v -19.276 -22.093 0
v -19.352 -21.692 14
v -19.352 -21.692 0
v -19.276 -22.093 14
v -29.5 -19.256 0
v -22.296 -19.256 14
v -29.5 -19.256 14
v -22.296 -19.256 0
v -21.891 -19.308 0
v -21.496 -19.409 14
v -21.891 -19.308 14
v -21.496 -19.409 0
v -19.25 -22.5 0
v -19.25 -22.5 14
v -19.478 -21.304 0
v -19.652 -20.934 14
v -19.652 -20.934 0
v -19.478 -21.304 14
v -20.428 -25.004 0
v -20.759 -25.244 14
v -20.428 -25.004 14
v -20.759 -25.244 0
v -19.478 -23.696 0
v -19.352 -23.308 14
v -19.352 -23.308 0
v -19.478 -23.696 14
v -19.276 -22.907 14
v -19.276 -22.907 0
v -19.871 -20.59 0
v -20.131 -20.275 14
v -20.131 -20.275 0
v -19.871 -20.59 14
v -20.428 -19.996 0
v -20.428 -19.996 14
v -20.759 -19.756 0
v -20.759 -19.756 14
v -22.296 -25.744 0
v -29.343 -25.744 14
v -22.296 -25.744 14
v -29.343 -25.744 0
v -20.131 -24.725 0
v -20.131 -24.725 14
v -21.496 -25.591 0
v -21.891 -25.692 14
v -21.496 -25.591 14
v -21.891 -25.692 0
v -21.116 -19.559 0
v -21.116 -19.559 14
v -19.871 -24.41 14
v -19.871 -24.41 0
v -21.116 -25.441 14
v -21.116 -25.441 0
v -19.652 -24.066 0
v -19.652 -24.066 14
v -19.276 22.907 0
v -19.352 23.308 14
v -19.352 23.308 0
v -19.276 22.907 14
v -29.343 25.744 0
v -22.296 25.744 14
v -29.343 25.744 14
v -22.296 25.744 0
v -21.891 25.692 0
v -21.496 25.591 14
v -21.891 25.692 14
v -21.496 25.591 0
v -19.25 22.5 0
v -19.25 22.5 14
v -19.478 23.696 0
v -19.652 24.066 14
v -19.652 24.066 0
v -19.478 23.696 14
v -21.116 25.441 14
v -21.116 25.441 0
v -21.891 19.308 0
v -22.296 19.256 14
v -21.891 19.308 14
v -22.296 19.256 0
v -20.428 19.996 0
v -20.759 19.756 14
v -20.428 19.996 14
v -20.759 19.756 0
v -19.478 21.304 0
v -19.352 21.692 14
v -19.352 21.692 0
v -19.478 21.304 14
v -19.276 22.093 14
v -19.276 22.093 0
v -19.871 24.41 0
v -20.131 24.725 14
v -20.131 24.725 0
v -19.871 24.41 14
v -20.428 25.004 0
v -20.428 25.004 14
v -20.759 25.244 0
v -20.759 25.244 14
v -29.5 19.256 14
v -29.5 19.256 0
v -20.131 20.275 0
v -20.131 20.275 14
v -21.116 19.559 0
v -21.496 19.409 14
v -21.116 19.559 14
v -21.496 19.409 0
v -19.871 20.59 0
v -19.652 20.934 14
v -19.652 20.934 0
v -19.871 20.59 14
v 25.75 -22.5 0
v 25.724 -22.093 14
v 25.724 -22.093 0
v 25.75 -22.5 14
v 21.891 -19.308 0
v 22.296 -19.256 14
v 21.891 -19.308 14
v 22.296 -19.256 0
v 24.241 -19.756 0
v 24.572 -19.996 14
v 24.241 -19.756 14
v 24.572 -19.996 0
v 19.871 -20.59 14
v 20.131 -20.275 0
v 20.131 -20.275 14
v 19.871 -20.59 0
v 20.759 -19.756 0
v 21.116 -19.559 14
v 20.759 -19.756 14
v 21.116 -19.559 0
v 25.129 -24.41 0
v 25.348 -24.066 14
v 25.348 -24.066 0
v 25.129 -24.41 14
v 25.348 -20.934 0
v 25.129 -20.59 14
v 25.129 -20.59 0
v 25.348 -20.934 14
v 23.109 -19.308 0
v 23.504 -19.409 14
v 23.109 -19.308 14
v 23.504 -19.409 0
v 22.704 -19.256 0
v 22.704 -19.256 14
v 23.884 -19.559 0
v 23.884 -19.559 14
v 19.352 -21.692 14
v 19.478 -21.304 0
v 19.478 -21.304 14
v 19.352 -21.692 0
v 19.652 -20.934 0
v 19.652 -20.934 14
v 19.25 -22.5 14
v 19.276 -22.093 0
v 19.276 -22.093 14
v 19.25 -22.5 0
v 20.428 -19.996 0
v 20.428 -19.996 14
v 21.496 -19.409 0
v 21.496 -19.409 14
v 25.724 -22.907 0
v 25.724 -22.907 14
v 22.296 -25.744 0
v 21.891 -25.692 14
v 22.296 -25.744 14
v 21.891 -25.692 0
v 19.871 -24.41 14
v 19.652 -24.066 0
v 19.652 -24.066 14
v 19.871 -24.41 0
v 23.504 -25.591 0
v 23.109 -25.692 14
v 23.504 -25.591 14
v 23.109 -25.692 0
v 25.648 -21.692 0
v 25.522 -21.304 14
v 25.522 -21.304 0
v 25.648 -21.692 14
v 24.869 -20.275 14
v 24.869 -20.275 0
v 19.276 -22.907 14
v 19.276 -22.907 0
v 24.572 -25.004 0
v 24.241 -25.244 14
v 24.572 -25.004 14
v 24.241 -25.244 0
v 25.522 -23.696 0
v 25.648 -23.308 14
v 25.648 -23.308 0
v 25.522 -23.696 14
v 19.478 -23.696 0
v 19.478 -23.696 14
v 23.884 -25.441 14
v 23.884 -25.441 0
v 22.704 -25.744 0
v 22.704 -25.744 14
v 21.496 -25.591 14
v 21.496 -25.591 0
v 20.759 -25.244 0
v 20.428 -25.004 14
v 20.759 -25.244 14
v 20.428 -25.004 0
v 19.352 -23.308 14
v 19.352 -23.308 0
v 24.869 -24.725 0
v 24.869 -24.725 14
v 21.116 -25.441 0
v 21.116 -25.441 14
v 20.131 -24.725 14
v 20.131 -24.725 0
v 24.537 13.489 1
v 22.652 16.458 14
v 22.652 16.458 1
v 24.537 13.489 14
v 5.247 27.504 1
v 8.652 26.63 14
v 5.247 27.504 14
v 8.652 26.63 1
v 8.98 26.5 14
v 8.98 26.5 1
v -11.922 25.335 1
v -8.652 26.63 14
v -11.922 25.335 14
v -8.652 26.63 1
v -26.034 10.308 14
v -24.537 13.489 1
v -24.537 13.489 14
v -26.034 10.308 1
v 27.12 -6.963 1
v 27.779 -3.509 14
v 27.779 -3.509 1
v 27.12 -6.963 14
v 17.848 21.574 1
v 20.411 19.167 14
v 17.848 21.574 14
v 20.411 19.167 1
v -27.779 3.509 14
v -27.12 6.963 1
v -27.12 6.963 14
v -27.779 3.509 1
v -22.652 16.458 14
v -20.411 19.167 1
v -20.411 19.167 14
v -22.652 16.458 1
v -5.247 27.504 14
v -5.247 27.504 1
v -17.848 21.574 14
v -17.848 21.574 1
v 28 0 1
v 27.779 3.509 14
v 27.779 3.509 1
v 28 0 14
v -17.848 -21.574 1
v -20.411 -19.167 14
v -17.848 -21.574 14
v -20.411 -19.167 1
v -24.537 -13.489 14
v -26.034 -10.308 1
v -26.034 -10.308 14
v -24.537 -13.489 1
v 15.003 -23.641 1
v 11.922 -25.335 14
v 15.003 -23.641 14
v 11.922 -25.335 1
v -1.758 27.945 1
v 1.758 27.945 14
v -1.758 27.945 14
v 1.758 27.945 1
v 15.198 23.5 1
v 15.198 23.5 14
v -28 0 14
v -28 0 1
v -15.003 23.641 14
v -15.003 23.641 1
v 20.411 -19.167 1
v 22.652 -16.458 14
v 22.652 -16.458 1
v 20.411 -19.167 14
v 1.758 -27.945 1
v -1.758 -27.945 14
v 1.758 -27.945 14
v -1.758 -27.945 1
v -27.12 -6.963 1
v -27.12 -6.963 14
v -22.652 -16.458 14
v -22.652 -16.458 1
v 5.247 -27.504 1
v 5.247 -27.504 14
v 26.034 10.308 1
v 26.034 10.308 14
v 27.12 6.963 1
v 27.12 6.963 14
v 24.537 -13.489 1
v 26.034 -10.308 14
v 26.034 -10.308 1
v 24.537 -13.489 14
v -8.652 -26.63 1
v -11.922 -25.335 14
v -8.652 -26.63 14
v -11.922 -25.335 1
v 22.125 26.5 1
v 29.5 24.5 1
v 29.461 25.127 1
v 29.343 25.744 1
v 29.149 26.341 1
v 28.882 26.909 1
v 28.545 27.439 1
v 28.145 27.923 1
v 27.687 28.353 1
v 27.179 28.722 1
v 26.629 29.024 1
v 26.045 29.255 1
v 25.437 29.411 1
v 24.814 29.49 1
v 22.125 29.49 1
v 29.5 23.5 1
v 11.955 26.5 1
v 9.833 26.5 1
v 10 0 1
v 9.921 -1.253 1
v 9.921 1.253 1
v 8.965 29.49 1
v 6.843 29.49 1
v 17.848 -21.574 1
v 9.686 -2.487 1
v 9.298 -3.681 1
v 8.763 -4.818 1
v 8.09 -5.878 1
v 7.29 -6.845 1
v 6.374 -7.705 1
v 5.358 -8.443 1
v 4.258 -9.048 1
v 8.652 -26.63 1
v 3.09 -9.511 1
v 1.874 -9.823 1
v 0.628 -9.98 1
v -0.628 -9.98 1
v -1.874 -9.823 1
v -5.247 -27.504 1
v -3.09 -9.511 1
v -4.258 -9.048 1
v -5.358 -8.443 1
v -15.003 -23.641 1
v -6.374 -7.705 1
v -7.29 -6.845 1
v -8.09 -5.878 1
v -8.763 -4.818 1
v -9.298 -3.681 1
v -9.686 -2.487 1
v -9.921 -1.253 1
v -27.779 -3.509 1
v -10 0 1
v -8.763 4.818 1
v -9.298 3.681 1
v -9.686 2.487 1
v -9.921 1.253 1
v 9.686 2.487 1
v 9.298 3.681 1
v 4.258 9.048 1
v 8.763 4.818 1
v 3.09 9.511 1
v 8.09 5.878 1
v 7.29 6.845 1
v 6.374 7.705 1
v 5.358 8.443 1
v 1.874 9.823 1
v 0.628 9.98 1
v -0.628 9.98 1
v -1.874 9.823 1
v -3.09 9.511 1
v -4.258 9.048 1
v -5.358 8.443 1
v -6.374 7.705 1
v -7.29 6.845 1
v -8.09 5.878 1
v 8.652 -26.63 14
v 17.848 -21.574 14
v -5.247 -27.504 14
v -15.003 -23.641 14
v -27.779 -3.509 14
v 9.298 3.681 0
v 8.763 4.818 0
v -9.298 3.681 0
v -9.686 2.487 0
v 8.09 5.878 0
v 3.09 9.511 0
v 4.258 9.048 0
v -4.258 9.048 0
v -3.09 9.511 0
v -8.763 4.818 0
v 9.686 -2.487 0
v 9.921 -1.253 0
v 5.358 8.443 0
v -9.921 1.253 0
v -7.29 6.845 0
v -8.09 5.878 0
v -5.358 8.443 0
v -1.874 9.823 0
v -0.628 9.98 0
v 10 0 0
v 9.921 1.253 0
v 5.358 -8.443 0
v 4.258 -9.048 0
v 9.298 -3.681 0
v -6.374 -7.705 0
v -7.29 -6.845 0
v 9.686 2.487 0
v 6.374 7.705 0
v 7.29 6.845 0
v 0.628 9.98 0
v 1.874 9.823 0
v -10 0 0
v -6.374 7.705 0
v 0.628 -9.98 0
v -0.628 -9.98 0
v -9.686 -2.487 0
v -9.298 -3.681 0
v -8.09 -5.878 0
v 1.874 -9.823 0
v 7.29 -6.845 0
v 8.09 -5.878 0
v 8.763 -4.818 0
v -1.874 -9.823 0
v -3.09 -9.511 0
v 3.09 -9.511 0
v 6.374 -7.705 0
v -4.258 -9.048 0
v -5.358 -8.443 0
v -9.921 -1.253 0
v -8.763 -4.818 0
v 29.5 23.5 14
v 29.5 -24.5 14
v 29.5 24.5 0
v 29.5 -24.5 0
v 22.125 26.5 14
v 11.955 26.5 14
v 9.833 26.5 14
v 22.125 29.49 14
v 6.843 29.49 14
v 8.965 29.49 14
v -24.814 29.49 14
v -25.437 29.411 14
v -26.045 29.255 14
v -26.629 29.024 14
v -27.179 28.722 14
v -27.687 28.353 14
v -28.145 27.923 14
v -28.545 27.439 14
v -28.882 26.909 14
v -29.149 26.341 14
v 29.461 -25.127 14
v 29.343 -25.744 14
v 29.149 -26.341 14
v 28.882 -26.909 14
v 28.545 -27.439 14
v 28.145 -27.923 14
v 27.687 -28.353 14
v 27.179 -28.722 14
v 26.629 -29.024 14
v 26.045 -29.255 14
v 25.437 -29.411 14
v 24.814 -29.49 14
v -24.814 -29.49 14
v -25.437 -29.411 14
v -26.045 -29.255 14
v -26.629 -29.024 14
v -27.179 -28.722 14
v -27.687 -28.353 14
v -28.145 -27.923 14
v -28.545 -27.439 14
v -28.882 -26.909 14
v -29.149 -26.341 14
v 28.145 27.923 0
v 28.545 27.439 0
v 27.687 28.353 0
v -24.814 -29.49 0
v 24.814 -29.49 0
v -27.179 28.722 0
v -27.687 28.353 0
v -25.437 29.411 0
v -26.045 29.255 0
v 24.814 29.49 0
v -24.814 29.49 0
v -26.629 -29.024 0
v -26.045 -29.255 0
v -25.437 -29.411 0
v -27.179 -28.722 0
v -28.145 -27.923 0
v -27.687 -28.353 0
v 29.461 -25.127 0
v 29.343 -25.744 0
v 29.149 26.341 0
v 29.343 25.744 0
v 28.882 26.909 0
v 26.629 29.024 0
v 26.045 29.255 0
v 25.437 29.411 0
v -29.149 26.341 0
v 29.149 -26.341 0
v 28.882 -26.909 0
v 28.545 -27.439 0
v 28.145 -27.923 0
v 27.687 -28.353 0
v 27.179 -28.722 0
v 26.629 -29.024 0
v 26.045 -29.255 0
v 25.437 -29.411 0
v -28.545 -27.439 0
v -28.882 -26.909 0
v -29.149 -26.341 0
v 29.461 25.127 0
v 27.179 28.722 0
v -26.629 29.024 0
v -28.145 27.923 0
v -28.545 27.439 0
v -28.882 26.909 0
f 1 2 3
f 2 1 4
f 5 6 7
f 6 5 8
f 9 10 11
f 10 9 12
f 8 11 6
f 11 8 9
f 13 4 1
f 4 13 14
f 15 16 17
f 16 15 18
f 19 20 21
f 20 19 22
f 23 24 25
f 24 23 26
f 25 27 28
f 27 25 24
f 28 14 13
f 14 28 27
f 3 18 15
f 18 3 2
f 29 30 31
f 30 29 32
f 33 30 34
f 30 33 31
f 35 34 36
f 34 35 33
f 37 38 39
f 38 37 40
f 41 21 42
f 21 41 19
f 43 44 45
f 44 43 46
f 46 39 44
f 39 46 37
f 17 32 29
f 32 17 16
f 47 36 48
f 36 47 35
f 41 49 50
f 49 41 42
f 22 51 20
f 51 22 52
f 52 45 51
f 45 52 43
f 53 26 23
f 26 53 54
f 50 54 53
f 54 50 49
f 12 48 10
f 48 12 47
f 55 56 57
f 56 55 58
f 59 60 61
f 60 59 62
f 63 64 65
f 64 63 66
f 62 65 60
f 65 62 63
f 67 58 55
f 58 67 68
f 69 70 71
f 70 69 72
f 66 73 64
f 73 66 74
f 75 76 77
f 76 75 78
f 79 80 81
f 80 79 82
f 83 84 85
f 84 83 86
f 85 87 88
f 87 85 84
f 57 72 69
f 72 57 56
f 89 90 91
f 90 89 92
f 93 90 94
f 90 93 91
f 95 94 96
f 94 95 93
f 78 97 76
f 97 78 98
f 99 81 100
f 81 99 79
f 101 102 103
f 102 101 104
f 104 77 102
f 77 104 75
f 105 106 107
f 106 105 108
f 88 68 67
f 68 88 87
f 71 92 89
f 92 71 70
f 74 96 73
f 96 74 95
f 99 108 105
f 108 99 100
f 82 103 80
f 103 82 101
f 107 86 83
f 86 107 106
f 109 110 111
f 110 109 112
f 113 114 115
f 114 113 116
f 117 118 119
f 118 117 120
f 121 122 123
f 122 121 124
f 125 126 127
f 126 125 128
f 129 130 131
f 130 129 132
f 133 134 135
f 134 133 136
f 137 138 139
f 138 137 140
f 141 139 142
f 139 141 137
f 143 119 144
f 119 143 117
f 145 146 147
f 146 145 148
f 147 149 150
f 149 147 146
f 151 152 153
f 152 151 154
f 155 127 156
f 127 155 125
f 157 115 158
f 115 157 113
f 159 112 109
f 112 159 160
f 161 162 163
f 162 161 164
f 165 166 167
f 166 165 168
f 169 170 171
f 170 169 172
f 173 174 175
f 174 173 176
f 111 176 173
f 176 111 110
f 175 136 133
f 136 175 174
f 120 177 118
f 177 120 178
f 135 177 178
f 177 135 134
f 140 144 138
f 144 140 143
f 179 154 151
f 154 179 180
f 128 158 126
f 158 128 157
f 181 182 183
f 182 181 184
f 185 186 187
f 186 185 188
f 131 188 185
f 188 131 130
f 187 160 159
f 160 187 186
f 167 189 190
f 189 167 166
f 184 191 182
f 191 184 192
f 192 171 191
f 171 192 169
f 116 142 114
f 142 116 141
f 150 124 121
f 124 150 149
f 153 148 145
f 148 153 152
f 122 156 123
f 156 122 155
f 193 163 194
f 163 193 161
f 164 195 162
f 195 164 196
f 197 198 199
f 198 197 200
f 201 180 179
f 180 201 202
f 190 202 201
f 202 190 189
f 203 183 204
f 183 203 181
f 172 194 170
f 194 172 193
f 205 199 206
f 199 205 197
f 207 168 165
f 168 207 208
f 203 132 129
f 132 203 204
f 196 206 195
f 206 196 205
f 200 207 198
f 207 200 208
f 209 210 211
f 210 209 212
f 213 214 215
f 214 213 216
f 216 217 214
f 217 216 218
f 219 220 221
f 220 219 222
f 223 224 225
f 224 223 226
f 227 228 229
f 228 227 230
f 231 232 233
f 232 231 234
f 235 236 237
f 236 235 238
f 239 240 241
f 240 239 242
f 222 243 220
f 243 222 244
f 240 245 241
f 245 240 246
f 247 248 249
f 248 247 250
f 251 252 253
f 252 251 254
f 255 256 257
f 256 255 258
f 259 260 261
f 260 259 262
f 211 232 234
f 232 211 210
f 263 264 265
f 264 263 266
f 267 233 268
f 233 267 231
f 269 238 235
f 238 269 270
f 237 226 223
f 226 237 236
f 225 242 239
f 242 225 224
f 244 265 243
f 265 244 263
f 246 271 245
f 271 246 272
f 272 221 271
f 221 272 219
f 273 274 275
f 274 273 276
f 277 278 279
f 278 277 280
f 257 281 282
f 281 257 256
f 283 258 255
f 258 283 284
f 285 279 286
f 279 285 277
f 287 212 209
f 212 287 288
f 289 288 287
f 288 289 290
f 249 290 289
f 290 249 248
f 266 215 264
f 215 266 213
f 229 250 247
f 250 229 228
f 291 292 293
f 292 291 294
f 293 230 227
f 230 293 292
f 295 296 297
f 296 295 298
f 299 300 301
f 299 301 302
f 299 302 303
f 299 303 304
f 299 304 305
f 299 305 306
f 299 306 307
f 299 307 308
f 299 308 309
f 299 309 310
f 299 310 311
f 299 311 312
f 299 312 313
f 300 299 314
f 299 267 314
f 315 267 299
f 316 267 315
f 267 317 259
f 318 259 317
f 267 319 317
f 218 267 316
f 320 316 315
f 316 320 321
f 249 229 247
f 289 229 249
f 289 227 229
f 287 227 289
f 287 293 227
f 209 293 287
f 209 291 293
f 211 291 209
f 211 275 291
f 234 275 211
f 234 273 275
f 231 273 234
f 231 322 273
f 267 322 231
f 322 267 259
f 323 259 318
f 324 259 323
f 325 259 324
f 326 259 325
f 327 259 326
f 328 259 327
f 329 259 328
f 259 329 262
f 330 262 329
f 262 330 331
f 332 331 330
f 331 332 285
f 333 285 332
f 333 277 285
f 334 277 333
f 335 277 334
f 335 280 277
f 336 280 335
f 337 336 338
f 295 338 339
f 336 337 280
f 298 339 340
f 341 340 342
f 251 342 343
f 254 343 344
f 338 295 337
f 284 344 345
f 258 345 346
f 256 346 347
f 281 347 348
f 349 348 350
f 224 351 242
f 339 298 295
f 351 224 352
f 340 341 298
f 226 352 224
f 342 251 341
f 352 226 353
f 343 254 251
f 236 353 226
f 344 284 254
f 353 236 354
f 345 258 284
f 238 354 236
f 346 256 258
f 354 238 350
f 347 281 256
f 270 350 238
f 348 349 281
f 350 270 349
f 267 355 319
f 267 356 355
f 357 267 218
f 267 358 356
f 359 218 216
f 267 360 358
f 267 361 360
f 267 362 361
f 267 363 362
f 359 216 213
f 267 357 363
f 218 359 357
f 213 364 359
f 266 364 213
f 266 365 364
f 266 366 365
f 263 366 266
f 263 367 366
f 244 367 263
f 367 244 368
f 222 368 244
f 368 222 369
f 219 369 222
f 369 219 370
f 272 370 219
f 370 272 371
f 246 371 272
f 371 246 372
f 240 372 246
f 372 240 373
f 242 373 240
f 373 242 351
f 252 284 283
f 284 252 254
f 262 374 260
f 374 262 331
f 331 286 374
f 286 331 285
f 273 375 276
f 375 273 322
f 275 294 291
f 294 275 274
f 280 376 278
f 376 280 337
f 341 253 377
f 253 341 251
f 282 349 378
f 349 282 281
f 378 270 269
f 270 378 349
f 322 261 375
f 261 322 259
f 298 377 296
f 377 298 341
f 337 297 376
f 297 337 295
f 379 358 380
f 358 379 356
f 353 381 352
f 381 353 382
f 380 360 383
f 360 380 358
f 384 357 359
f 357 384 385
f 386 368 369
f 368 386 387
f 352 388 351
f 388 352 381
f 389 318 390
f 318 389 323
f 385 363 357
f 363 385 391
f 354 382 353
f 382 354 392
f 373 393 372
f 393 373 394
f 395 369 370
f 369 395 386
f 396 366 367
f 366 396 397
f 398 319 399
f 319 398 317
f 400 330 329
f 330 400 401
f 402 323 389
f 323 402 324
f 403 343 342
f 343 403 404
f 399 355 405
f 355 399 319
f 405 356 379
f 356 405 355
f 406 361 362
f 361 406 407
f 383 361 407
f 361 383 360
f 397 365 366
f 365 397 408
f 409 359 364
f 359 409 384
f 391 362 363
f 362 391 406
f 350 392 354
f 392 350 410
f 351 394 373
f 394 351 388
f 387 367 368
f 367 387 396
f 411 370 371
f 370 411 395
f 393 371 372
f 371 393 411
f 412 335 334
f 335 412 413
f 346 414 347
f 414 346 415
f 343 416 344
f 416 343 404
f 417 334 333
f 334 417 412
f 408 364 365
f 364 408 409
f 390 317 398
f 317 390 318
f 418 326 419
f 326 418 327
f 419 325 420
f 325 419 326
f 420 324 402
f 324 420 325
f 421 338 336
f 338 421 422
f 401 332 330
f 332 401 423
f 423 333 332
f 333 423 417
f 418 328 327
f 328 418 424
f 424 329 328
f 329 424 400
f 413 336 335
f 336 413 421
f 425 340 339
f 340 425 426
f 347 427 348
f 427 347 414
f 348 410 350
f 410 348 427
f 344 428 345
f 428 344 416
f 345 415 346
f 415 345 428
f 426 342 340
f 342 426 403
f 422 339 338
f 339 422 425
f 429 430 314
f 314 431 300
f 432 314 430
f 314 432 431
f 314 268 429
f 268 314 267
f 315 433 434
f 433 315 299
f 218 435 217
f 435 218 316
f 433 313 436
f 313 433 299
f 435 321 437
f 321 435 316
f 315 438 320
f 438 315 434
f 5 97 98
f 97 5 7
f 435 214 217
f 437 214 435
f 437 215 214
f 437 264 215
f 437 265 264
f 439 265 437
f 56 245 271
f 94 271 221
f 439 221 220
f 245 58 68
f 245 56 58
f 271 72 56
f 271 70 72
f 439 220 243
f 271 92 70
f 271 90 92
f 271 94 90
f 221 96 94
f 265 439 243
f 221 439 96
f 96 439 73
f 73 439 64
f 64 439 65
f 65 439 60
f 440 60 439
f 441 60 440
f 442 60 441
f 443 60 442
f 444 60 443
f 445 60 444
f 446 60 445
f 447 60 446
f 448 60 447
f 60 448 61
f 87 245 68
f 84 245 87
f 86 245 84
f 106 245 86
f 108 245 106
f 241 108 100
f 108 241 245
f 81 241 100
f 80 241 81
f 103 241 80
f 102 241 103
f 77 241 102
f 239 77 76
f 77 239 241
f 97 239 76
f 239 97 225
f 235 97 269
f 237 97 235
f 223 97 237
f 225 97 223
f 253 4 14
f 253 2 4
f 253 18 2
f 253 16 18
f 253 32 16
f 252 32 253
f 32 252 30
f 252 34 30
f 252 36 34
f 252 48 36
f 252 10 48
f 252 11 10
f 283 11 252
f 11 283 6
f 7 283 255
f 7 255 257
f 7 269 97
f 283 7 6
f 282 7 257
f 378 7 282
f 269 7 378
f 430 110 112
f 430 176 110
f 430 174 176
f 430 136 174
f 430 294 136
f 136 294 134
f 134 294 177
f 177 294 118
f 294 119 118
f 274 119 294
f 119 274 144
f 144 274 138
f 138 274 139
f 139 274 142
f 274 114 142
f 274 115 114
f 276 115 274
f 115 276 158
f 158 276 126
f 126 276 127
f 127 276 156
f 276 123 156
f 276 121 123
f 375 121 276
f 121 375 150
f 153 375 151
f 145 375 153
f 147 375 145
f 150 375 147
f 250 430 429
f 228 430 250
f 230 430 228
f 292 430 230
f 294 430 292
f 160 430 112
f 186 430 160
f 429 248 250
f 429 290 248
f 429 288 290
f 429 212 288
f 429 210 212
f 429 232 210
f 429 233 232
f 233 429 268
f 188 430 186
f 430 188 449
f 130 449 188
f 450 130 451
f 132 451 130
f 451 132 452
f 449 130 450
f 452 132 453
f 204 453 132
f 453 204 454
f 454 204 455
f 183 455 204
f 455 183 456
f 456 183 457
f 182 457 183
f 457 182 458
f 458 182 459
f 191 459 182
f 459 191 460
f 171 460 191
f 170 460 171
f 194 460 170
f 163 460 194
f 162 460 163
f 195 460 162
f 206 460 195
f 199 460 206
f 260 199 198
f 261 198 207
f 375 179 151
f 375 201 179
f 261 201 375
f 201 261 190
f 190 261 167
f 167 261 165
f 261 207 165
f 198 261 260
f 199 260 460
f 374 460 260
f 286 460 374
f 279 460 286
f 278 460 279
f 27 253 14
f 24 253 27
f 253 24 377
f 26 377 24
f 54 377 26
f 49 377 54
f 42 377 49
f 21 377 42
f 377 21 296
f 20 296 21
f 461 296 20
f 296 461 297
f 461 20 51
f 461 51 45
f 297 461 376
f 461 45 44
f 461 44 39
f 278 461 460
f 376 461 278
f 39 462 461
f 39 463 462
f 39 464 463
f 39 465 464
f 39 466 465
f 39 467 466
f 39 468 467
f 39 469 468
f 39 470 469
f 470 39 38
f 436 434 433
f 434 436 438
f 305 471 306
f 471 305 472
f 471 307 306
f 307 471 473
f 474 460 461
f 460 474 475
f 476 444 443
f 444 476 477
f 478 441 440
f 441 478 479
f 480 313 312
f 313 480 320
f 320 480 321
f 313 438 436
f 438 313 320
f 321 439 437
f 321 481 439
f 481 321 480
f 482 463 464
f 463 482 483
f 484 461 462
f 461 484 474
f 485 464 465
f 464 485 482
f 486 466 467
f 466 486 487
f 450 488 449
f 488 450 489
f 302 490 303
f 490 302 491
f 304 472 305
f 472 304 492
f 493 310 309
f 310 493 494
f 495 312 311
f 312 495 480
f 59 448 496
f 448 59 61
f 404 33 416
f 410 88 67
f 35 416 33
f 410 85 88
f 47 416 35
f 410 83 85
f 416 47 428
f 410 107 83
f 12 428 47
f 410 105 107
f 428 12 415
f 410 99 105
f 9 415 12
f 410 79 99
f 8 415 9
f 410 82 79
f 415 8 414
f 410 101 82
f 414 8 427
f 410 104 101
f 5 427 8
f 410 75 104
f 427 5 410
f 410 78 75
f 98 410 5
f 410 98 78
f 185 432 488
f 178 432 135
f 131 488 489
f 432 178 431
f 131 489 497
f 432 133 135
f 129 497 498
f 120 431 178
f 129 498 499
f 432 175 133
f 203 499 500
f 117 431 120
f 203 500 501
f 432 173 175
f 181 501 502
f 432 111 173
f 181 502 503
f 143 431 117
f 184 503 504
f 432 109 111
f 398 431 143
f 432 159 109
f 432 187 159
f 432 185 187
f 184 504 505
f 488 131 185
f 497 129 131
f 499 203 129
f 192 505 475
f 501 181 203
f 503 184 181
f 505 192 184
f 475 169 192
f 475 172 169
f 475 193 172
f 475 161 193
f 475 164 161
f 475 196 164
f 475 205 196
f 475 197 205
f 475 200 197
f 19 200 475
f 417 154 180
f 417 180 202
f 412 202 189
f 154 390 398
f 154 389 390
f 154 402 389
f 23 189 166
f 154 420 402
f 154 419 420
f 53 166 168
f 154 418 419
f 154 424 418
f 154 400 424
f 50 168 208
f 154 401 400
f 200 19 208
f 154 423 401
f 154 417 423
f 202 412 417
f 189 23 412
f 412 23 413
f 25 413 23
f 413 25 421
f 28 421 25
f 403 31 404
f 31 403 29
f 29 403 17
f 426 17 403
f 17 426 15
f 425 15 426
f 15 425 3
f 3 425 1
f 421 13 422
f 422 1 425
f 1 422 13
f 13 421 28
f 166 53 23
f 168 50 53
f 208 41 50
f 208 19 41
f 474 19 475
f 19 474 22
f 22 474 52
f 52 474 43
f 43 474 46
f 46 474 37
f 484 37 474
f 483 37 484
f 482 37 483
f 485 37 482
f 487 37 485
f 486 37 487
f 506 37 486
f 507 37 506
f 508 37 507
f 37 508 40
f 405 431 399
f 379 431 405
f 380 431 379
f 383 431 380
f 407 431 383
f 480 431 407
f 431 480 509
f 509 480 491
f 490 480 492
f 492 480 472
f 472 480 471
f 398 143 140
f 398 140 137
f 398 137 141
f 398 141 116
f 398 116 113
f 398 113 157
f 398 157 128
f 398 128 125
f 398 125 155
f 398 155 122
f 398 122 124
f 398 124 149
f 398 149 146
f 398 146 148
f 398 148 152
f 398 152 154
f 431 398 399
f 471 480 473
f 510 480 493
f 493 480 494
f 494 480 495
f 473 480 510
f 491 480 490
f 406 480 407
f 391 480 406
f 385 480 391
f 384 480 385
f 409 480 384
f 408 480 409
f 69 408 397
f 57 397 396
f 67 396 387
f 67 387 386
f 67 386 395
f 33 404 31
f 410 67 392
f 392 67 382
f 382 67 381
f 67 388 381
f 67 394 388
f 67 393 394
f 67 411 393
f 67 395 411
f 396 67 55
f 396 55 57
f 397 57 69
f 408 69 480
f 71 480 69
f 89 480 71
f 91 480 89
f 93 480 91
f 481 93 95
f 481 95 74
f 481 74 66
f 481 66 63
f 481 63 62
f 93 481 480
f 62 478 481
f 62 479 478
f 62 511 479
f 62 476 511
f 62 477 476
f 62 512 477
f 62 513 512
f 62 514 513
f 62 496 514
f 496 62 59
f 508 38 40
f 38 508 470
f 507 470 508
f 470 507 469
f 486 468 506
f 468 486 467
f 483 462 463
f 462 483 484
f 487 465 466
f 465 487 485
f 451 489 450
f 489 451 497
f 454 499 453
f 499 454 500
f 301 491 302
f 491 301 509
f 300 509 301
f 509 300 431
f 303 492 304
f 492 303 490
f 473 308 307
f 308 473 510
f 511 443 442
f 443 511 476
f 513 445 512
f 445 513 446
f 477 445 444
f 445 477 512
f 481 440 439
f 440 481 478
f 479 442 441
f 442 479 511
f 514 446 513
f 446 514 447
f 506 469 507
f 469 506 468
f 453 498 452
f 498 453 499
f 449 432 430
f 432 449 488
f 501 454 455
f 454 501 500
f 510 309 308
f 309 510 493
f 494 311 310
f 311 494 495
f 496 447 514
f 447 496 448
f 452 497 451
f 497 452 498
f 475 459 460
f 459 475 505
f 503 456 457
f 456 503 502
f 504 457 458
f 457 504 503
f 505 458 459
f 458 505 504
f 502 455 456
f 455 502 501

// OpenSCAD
$fn = 50;


difference() {
	union() {
		translate(v = [0, 0, 0]) {
			rotate(a = [0, 0, 0]) {
				hull() {
					translate(v = [-24.5000000000, 24.5000000000, 0]) {
						rotate(a = [0, 0, 0]) {
							translate(v = [0, 0, 0]) {
								rotate(a = [0, 0, 0]) {
									cylinder(h = 14, r = 5);
								}
							}
						}
					}
					translate(v = [24.5000000000, 24.5000000000, 0]) {
						rotate(a = [0, 0, 0]) {
							translate(v = [0, 0, 0]) {
								rotate(a = [0, 0, 0]) {
									cylinder(h = 14, r = 5);
								}
							}
						}
					}
					translate(v = [-24.5000000000, -24.5000000000, 0]) {
						rotate(a = [0, 0, 0]) {
							translate(v = [0, 0, 0]) {
								rotate(a = [0, 0, 0]) {
									cylinder(h = 14, r = 5);
								}
							}
						}
					}
					translate(v = [24.5000000000, -24.5000000000, 0]) {
						rotate(a = [0, 0, 0]) {
							translate(v = [0, 0, 0]) {
								rotate(a = [0, 0, 0]) {
									cylinder(h = 14, r = 5);
								}
							}
						}
					}
				}
			}
		}
	}
	union() {
		translate(v = [-30.0000000000, -22.5000000000, -125]) {
			rotate(a = [0, 0, 0]) {
				hull() {
					translate(v = [7.5000000000, 0, 0]) {
						rotate(a = [0, 0, 0]) {
							translate(v = [0, 0, 0]) {
								rotate(a = [0, 0, 0]) {
									cylinder(h = 250, r = 3.2500000000);
								}
							}
						}
					}
					translate(v = [-7.5000000000, 0, 0]) {
						rotate(a = [0, 0, 0]) {
							translate(v = [0, 0, 0]) {
								rotate(a = [0, 0, 0]) {
									cylinder(h = 250, r = 3.2500000000);
								}
							}
						}
					}
				}
			}
		}
		translate(v = [-30.0000000000, 22.5000000000, -125]) {
			rotate(a = [0, 0, 0]) {
				hull() {
					translate(v = [7.5000000000, 0, 0]) {
						rotate(a = [0, 0, 0]) {
							translate(v = [0, 0, 0]) {
								rotate(a = [0, 0, 0]) {
									cylinder(h = 250, r = 3.2500000000);
								}
							}
						}
					}
					translate(v = [-7.5000000000, 0, 0]) {
						rotate(a = [0, 0, 0]) {
							translate(v = [0, 0, 0]) {
								rotate(a = [0, 0, 0]) {
									cylinder(h = 250, r = 3.2500000000);
								}
							}
						}
					}
				}
			}
		}
		translate(v = [22.5000000000, -22.5000000000, -125.0000000000]) {
			rotate(a = [0, 0, 0]) {
				cylinder(h = 250, r = 3.2500000000);
			}
		}
		translate(v = [0, 0, 1.0000000000]) {
			rotate(a = [0, 0, 0]) {
				cylinder(h = 16, r = 28.0000000000);
			}
		}
		translate(v = [0, 0, -7.0000000000]) {
			rotate(a = [0, 0, 0]) {
				cylinder(h = 14, r = 10.0000000000);
			}
		}
		translate(v = [0.0000000000, 23.5000000000, 1]) {
			rotate(a = [0, 0, 0]) {
				cube(size = [29.5000000000, 3, 16]);
			}
		}
		translate(v = [22.1250000000, 23.5000000000, 1]) {
			rotate(a = [0, 0, 0]) {
				cube(size = [7.3750000000, 6, 16]);
			}
		}
		translate(v = [6.0833333333, 30.2500000000, 1]) {
			rotate(a = [0, 0, -45]) {
				cube(size = [7.5000000000, 1.5000000000, 16]);
			}
		}
	}
}
